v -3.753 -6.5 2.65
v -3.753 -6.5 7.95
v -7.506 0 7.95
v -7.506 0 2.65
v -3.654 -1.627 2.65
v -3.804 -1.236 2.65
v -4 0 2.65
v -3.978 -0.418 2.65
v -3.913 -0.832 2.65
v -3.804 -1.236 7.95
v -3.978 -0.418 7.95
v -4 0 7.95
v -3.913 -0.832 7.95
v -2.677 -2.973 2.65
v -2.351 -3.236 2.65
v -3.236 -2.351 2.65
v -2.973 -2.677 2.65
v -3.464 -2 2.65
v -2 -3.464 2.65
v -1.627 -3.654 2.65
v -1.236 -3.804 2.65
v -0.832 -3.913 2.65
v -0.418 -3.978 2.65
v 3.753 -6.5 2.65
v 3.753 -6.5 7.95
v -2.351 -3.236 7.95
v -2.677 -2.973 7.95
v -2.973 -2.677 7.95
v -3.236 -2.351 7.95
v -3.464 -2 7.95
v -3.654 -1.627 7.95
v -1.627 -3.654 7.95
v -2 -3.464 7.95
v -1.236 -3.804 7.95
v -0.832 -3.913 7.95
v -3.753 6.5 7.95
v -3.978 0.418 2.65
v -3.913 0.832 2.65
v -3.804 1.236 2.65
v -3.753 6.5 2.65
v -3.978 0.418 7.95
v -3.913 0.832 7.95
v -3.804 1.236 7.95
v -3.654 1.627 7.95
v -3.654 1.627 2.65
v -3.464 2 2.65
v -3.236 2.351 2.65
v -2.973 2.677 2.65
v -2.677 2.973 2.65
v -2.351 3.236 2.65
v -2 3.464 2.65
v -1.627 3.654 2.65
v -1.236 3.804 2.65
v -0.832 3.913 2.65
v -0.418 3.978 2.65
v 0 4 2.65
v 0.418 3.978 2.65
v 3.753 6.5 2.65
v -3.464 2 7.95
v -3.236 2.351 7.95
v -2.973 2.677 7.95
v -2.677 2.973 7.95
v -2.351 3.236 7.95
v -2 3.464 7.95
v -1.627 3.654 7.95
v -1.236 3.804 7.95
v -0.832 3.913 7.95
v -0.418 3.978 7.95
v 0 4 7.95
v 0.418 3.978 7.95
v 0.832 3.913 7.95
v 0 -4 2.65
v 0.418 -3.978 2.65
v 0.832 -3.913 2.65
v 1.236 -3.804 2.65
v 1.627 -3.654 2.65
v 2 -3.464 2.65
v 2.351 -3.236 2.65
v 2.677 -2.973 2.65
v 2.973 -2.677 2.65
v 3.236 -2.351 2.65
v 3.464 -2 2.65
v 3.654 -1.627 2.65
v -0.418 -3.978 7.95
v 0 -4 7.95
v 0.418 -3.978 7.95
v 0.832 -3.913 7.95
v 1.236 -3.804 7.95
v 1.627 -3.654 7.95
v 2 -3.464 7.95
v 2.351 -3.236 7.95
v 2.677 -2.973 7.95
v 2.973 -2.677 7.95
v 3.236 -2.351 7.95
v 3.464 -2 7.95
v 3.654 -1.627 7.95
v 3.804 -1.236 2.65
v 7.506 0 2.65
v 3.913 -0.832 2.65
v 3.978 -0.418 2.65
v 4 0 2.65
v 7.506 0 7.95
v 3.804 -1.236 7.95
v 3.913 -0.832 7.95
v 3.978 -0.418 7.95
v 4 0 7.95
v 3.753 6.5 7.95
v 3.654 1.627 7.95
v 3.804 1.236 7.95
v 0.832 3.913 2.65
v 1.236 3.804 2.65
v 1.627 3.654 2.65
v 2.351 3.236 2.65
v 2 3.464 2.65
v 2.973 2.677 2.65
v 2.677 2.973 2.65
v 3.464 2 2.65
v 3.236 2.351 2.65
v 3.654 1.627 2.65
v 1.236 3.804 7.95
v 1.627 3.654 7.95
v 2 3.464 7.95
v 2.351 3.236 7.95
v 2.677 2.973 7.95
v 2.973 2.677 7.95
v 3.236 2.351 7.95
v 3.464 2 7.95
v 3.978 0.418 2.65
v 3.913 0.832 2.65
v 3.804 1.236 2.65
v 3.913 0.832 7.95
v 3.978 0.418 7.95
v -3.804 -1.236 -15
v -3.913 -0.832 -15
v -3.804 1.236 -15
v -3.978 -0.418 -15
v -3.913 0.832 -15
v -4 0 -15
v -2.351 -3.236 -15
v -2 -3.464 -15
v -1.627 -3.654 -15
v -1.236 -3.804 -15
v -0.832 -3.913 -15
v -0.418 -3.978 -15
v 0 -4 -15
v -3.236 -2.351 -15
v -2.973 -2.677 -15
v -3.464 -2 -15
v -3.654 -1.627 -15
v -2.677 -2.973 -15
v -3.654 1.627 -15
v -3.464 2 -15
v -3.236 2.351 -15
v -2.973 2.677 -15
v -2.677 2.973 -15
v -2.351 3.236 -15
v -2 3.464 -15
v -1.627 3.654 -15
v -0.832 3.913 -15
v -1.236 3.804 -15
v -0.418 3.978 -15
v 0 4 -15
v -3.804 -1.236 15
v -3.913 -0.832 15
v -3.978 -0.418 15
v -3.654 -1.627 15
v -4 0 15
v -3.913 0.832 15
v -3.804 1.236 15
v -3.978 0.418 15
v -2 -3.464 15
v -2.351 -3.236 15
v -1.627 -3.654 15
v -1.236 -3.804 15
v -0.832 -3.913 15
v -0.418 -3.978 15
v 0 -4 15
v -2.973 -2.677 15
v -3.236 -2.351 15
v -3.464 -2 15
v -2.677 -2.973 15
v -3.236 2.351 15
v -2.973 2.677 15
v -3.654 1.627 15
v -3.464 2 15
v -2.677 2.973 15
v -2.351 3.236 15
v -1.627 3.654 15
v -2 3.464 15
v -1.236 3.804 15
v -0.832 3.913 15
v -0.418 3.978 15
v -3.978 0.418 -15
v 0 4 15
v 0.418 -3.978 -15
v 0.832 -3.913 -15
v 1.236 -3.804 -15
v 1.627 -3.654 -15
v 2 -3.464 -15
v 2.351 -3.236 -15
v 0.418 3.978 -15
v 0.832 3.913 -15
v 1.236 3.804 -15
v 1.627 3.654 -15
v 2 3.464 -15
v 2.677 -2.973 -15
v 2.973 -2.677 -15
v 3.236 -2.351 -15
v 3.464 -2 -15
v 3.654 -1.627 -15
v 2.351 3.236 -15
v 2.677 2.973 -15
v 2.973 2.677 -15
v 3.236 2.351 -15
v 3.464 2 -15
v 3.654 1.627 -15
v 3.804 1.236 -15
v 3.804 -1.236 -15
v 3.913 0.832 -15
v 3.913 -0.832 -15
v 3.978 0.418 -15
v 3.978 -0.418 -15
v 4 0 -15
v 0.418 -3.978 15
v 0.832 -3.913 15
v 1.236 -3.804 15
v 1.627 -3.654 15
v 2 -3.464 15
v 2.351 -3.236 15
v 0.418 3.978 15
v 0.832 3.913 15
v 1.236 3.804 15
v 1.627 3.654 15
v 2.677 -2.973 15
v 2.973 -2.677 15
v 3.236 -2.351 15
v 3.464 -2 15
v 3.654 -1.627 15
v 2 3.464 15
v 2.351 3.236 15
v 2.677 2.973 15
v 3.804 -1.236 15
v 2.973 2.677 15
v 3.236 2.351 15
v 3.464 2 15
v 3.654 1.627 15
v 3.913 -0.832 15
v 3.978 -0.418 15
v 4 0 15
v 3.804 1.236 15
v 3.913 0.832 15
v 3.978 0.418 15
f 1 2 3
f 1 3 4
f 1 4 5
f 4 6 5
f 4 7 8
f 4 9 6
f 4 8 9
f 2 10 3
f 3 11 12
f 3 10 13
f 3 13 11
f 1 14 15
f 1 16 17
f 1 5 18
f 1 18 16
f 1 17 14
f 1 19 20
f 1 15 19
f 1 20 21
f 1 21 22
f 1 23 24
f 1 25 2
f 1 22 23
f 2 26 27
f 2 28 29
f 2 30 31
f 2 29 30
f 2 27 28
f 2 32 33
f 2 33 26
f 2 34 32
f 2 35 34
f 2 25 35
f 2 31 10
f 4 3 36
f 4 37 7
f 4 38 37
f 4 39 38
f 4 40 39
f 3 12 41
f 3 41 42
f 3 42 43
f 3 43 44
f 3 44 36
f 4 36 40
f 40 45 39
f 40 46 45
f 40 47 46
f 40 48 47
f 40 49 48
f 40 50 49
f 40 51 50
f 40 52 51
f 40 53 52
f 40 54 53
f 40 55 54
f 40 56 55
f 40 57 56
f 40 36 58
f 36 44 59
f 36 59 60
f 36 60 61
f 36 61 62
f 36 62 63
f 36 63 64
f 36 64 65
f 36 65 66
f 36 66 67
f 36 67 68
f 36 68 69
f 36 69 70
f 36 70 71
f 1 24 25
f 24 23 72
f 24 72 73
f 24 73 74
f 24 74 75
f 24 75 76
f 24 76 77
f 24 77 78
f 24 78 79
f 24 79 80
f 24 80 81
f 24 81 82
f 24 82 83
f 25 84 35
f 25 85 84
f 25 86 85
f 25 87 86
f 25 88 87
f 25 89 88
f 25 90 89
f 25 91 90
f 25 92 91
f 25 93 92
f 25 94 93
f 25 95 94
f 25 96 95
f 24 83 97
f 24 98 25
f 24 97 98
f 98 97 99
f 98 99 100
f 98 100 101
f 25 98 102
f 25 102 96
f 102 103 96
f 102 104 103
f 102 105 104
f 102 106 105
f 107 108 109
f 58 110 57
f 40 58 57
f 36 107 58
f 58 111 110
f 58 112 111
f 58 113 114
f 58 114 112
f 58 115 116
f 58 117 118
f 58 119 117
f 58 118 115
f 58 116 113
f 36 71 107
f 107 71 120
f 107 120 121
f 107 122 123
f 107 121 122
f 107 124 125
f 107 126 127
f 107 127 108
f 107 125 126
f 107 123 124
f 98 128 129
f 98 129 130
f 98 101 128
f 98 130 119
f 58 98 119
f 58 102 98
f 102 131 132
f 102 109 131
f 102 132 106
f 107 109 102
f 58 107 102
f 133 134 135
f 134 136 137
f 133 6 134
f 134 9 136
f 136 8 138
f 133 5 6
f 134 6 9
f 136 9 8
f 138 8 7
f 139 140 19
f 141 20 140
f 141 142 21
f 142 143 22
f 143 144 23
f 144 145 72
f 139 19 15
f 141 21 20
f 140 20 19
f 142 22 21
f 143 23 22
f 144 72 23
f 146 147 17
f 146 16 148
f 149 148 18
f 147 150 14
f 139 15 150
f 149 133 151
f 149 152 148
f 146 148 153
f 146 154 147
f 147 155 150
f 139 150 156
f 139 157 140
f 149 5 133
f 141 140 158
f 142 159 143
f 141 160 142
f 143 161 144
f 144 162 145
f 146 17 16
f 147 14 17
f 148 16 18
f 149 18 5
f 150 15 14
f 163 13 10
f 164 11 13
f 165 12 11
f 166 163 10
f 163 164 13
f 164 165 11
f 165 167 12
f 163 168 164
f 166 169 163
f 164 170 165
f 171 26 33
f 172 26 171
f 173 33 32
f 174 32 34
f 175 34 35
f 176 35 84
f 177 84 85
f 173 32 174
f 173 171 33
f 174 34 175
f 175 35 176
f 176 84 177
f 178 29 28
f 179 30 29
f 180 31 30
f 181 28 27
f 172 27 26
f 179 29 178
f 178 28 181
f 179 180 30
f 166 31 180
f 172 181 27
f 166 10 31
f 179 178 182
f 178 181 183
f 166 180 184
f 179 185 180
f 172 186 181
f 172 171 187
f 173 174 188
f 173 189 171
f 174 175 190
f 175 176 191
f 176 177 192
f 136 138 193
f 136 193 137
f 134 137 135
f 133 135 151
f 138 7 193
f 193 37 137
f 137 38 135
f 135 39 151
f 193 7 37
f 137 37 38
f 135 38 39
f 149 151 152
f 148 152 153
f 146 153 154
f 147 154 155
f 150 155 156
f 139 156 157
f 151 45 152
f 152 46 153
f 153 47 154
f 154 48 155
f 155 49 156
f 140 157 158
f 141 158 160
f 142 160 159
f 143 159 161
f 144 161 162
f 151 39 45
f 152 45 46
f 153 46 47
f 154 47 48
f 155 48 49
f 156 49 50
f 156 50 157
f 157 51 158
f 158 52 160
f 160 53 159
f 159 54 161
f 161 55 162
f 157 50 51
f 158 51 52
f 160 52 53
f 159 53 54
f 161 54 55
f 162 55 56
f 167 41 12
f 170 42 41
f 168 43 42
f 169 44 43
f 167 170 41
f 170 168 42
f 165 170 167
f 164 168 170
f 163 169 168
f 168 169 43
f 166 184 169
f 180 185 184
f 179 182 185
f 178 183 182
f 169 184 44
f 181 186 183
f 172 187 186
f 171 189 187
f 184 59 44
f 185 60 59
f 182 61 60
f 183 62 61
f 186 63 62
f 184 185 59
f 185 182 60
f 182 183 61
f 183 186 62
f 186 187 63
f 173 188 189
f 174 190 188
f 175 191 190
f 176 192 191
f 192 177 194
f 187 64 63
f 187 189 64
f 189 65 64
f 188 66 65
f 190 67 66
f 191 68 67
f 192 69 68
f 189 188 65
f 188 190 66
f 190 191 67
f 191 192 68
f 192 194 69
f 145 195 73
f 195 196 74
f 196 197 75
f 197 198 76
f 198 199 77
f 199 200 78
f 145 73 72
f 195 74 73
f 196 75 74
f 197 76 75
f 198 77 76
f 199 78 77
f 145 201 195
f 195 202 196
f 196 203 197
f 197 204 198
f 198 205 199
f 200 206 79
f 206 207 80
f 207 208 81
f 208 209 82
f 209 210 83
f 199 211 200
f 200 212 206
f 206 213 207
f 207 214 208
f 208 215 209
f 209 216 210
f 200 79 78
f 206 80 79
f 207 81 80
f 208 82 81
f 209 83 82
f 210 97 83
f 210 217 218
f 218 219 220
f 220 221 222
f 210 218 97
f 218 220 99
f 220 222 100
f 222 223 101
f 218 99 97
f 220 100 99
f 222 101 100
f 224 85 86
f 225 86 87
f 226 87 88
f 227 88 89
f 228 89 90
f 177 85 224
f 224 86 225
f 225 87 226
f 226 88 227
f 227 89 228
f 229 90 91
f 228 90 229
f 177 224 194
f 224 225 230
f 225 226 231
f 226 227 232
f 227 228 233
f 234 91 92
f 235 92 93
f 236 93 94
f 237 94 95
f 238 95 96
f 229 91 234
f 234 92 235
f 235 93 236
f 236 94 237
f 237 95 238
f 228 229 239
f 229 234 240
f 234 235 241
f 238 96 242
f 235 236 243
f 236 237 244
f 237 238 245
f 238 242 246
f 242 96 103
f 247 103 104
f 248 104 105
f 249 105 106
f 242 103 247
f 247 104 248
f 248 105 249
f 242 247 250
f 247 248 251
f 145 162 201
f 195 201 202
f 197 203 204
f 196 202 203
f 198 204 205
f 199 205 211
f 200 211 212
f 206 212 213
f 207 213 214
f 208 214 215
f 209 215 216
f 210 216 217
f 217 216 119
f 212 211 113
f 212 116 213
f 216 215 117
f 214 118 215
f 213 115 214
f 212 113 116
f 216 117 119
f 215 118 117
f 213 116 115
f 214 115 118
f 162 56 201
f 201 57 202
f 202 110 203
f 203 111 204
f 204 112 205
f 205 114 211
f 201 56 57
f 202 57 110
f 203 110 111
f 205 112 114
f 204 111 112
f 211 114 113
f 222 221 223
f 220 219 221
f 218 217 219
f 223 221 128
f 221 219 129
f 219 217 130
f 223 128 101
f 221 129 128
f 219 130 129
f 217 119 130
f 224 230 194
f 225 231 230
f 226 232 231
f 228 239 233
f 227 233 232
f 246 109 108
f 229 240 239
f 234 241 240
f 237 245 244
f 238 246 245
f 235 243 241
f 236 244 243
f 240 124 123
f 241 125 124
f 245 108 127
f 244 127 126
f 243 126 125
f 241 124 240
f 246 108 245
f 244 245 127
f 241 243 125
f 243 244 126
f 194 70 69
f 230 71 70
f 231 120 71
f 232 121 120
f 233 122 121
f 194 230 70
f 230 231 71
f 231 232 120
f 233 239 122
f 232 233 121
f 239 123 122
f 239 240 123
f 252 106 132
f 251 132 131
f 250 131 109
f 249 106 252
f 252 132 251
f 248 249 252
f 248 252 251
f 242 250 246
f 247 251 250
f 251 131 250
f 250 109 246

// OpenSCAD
// M8 hex bolt (thread omitted)

$fn = 60;

// Parameters
across_flats = 13;   // head across-flats
head_h       = 5.3;  // head height
shank_d      = 8;    // shank diameter
shank_l      = 30;   // shank length (in negative Z direction)

// Derived
head_r = across_flats / 2 / cos(30); // hex circumradius

union() {
    // Head: centered in X-Y, bottom at z=0
    translate([0, 0, head_h/2])
        cylinder(h = head_h, r = head_r, $fn = 6);

    // Shank: extends from z=0 down to z=-(shank_l)
    translate([0, 0, -shank_l/2])
        cylinder(h = shank_l, d = shank_d, $fn = 60);
}
